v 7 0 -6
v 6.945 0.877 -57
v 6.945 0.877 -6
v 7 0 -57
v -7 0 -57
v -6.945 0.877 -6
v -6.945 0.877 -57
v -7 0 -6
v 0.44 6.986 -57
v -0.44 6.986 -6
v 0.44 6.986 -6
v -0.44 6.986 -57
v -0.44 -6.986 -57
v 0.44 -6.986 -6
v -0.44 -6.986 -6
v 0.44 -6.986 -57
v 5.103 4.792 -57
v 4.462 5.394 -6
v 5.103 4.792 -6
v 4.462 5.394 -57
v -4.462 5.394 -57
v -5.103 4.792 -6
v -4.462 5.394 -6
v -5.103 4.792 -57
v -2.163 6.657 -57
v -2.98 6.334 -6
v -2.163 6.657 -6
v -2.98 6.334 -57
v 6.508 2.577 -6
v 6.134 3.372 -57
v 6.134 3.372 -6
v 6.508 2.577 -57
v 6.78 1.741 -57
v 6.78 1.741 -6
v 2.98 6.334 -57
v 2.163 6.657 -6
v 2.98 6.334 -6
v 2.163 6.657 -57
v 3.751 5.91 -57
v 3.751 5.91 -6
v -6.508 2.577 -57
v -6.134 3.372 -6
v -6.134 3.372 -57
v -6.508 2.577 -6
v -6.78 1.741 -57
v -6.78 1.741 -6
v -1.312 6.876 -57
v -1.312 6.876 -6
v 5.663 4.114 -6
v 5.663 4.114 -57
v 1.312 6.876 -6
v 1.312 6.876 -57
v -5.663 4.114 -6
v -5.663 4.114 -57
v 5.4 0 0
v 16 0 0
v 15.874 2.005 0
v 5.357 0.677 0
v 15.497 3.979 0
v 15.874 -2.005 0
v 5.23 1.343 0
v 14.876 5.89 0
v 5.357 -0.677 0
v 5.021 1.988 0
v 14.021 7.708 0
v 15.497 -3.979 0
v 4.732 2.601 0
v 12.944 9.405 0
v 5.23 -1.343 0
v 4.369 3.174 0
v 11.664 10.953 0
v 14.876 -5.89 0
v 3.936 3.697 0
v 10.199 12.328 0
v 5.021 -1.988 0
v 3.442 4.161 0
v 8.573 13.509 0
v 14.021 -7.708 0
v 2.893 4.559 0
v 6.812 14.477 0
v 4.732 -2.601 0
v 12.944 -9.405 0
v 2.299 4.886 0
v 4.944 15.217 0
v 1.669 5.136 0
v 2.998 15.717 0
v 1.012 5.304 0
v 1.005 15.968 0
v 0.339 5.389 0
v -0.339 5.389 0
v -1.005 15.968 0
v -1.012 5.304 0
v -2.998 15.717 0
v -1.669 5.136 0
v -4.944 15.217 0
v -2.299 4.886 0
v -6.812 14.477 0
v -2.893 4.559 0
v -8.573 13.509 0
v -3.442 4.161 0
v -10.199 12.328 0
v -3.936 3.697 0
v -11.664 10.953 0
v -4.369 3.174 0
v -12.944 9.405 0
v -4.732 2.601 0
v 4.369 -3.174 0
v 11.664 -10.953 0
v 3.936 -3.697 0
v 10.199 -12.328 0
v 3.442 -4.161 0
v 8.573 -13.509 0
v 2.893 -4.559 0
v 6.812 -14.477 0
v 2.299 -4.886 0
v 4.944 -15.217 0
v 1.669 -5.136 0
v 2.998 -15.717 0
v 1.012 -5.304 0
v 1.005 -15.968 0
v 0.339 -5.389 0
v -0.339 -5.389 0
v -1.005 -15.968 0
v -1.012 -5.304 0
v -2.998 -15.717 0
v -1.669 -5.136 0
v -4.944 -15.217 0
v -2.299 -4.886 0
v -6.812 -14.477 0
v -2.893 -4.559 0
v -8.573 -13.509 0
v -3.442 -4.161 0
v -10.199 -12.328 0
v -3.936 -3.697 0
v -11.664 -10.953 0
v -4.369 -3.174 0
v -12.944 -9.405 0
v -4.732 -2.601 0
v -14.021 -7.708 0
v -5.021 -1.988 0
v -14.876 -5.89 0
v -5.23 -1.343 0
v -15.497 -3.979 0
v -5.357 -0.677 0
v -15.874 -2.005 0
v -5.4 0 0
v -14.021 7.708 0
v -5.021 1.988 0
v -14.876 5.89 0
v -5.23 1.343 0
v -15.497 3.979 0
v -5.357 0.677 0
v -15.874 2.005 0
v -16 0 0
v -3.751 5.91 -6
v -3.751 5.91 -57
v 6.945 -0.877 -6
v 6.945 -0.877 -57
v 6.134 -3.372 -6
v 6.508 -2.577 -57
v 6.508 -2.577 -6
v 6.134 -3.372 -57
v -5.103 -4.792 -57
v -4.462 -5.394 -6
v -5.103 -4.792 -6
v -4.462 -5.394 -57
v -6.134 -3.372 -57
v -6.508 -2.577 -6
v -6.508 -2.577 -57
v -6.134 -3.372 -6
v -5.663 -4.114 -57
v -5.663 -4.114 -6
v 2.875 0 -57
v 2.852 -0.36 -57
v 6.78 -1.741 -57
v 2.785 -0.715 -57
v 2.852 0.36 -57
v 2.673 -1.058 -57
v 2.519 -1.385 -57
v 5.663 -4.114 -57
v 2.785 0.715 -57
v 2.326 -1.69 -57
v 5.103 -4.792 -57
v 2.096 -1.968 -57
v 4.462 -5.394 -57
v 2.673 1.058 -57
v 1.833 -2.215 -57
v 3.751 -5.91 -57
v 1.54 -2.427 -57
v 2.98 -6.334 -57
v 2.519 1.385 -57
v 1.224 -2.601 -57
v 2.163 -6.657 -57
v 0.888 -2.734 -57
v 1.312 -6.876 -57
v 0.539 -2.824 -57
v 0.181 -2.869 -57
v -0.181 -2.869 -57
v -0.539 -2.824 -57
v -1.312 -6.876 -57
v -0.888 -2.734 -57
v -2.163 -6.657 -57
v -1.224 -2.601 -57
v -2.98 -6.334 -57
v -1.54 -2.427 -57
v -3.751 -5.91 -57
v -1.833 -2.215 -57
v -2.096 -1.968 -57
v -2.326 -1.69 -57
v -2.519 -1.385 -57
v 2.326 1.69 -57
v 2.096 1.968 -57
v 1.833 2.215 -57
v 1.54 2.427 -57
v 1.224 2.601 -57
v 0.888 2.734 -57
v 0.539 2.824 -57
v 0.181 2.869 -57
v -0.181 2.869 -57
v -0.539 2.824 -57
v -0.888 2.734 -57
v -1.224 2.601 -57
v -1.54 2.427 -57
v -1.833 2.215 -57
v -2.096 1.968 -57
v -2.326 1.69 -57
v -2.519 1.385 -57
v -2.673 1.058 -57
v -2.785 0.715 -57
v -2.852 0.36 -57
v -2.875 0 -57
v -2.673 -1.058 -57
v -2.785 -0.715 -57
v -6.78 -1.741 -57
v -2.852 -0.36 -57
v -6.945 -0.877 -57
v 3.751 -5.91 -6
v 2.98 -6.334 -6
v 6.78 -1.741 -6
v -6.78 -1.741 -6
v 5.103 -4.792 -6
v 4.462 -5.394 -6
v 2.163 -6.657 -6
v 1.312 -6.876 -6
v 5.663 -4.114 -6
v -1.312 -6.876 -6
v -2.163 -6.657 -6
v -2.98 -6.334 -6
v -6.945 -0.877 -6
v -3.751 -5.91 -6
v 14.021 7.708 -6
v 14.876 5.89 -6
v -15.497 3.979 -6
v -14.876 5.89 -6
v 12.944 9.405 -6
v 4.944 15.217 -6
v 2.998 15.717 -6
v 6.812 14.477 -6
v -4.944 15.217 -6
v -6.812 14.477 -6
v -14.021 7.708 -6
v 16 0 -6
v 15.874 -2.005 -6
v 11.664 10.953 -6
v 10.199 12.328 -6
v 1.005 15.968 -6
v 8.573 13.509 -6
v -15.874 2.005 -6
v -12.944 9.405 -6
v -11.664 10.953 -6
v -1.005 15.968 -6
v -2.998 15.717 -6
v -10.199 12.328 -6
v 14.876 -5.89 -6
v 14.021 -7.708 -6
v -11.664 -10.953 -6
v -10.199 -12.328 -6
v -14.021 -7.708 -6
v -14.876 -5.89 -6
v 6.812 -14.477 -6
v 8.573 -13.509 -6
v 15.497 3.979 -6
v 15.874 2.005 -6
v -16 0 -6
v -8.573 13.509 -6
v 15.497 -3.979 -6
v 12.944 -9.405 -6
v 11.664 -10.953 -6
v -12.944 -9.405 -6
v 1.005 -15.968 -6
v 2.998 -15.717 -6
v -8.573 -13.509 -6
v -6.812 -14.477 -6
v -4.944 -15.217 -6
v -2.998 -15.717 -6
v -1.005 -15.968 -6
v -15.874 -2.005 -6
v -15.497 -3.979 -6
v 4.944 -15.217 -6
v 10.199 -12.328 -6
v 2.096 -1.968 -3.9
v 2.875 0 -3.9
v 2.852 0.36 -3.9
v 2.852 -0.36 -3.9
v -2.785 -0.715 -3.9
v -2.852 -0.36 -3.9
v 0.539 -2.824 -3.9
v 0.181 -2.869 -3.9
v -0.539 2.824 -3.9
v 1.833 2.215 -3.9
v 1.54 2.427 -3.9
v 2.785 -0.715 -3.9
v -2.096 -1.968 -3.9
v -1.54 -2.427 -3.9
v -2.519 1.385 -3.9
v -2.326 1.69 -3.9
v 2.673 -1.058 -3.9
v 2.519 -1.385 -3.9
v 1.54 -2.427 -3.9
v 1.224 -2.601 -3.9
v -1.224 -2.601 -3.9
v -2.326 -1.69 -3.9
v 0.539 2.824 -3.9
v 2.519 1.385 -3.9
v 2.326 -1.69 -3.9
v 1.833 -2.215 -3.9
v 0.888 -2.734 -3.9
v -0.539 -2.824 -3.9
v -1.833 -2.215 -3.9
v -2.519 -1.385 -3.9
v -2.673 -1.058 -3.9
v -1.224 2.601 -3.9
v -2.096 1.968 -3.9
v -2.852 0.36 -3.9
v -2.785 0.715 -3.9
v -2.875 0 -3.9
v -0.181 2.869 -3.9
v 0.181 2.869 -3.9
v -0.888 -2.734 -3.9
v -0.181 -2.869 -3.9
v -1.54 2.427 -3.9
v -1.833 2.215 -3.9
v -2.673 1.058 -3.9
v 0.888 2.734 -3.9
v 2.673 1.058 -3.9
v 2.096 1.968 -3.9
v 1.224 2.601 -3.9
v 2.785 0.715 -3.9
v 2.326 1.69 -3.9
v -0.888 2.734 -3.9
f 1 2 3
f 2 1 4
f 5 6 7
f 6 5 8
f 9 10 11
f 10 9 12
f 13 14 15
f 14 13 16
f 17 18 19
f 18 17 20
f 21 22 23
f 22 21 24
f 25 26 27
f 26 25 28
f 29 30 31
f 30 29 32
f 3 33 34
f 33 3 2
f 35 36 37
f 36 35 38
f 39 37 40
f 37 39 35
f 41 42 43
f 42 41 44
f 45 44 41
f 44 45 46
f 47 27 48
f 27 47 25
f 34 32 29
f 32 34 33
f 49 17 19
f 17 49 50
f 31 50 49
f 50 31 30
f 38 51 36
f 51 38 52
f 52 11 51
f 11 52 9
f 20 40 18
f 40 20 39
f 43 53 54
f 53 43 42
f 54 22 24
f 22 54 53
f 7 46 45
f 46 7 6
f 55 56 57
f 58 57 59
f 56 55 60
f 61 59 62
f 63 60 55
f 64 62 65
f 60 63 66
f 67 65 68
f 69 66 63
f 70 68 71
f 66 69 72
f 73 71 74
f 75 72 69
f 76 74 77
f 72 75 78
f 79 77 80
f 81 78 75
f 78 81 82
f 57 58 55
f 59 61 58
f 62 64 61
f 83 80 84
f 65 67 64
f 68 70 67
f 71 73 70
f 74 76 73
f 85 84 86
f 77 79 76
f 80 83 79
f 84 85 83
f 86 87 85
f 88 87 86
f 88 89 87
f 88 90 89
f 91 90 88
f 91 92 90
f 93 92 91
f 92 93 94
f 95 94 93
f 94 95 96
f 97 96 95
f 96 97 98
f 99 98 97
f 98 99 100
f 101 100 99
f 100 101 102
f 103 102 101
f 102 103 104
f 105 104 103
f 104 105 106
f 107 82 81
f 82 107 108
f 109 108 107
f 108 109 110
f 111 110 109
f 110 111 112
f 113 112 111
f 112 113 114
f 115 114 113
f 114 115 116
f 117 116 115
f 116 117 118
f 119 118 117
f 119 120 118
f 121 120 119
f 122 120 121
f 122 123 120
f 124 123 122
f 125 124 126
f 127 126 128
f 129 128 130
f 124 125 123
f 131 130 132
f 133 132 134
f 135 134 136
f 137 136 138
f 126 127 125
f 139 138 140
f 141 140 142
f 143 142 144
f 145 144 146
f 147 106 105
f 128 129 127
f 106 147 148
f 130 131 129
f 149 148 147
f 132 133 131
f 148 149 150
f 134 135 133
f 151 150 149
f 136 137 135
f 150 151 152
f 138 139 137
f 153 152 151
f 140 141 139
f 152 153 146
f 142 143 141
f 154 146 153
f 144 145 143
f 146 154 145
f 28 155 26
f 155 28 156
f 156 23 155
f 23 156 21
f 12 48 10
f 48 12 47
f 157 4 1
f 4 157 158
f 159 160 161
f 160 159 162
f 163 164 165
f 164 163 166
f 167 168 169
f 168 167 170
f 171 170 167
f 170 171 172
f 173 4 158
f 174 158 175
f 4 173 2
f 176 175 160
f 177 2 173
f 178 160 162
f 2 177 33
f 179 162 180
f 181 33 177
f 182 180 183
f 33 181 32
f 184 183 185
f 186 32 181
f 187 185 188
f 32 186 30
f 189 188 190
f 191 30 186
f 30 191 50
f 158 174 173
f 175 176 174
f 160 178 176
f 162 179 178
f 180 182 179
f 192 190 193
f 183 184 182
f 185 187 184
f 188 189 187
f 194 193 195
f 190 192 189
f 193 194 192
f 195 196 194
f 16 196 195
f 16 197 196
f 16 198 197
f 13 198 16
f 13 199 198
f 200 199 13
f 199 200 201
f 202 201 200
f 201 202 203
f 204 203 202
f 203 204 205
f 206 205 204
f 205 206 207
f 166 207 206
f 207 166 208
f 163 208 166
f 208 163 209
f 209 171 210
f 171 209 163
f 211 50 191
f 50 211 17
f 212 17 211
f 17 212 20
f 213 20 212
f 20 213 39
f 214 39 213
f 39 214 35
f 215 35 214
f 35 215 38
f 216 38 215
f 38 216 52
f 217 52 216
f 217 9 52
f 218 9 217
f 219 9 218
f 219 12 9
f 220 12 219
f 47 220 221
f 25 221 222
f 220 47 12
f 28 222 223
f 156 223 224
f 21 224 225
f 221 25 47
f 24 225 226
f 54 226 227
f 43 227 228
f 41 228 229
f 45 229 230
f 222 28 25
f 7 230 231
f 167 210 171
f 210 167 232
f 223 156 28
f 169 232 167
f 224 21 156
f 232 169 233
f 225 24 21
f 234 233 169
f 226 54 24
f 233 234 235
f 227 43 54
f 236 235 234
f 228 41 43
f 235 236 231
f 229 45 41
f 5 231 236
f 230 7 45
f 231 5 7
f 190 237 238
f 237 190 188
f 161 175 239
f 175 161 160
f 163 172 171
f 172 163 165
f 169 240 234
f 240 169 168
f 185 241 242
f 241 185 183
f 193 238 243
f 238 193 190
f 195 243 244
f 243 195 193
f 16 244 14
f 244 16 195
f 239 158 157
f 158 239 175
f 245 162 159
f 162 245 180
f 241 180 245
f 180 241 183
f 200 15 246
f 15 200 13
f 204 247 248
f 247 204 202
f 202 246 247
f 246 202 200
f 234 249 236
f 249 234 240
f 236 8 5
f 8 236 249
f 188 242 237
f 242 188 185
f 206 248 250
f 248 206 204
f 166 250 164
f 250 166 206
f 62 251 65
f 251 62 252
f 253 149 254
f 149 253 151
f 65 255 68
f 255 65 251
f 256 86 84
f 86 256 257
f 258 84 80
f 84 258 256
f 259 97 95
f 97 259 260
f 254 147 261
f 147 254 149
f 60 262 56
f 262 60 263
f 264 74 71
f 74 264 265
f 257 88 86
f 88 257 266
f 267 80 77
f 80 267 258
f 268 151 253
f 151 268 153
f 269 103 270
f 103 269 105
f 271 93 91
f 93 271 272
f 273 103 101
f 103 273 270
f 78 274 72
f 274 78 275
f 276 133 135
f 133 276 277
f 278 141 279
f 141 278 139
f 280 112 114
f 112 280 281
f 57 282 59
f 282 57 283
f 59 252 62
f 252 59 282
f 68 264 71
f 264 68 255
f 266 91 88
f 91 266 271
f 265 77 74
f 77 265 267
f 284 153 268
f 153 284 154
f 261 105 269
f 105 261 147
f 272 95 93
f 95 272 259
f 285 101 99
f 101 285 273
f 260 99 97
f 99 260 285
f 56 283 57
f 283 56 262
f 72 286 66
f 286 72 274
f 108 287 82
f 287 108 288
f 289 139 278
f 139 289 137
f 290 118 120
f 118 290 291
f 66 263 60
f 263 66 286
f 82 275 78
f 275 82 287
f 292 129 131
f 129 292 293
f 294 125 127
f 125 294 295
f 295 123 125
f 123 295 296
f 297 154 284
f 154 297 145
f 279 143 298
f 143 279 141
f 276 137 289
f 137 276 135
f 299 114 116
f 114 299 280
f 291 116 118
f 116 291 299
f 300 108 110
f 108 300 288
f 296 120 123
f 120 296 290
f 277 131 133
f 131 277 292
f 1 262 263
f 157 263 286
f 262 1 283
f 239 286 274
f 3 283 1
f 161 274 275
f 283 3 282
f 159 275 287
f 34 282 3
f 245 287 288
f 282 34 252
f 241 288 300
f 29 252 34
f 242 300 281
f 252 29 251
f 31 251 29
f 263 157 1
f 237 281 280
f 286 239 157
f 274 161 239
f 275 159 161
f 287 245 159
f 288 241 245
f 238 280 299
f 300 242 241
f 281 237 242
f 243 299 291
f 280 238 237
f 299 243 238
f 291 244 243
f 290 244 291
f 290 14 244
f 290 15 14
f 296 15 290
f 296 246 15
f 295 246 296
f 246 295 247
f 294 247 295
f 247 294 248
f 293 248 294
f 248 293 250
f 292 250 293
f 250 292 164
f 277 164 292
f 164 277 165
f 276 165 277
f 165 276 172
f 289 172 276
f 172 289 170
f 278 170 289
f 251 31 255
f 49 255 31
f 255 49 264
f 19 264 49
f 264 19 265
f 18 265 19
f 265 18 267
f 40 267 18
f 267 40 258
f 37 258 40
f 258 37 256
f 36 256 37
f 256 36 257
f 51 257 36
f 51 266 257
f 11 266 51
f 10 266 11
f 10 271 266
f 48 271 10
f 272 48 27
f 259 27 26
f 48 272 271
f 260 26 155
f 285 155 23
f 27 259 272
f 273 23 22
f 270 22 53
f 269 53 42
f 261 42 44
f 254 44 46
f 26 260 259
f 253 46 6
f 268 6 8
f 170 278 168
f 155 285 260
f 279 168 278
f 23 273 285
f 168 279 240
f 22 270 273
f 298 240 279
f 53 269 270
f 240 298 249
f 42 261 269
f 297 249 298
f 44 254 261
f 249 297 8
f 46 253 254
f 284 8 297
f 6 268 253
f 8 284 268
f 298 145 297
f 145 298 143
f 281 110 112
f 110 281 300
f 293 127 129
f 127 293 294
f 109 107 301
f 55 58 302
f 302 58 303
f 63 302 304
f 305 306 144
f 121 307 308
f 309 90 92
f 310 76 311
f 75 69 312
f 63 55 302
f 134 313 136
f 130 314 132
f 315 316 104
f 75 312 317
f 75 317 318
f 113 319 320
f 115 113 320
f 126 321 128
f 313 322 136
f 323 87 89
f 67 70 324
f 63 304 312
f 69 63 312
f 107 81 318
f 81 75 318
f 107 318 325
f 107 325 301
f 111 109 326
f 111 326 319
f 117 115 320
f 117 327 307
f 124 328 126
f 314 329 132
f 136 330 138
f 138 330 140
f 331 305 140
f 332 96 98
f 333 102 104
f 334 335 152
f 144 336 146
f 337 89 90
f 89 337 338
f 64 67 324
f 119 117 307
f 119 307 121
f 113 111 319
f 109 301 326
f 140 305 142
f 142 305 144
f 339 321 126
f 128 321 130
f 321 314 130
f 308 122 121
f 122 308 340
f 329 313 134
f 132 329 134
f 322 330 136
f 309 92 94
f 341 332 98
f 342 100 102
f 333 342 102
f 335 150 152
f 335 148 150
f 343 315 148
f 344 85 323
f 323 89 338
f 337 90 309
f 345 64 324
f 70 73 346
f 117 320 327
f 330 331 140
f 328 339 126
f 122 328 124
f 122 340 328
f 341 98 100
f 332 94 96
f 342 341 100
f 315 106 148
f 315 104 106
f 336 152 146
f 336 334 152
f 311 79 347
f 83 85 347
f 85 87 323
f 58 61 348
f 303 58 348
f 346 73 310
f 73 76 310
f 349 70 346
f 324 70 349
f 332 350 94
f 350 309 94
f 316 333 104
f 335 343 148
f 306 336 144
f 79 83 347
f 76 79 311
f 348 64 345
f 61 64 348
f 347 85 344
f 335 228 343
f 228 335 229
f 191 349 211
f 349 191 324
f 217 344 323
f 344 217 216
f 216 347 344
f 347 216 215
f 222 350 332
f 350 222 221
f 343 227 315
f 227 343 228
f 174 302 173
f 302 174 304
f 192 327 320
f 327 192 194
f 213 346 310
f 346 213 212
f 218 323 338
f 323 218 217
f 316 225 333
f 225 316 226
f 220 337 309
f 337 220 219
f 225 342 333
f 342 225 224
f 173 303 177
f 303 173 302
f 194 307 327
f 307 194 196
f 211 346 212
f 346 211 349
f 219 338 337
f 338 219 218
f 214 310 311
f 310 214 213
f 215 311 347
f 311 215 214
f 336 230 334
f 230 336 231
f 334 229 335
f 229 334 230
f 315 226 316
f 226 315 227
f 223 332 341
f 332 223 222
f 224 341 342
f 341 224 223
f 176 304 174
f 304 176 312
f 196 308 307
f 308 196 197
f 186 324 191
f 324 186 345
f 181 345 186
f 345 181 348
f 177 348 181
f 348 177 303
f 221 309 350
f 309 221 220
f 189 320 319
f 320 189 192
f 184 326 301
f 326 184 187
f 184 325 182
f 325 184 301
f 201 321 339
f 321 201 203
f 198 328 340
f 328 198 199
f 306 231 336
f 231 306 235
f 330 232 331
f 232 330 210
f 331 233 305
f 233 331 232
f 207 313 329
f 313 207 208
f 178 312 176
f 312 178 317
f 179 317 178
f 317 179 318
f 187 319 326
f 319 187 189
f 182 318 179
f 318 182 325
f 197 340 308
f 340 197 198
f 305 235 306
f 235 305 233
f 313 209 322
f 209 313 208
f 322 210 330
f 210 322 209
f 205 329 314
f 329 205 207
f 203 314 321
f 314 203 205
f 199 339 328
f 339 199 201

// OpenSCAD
$fn = 50;


difference() {
	union() {
		translate(v = [0, 0, -57.0000000000]) {
			cylinder(h = 57, r = 7.0000000000);
		}
		translate(v = [0, 0, -6.0000000000]) {
			cylinder(h = 6, r = 16.0000000000);
		}
	}
	union() {
		translate(v = [0, 0, 0]) {
			rotate(a = [0, 0, 0]) {
				difference() {
					union() {
						#translate(v = [0, 0, -57.0000000000]) {
							cylinder(h = 57, r = 2.6000000000);
						}
						#translate(v = [0, 0, -3.9000000000]) {
							cylinder(h = 3.9000000000, r = 7.0000000000, r1 = 2.8750000000, r2 = 5.4000000000);
						}
						#translate(v = [0, 0, -57.0000000000]) {
							cylinder(h = 57, r = 2.8750000000);
						}
						#translate(v = [0, 0, -57.0000000000]) {
							cylinder(h = 57, r = 2.6000000000);
						}
					}
					union();
				}
			}
		}
	}
}
